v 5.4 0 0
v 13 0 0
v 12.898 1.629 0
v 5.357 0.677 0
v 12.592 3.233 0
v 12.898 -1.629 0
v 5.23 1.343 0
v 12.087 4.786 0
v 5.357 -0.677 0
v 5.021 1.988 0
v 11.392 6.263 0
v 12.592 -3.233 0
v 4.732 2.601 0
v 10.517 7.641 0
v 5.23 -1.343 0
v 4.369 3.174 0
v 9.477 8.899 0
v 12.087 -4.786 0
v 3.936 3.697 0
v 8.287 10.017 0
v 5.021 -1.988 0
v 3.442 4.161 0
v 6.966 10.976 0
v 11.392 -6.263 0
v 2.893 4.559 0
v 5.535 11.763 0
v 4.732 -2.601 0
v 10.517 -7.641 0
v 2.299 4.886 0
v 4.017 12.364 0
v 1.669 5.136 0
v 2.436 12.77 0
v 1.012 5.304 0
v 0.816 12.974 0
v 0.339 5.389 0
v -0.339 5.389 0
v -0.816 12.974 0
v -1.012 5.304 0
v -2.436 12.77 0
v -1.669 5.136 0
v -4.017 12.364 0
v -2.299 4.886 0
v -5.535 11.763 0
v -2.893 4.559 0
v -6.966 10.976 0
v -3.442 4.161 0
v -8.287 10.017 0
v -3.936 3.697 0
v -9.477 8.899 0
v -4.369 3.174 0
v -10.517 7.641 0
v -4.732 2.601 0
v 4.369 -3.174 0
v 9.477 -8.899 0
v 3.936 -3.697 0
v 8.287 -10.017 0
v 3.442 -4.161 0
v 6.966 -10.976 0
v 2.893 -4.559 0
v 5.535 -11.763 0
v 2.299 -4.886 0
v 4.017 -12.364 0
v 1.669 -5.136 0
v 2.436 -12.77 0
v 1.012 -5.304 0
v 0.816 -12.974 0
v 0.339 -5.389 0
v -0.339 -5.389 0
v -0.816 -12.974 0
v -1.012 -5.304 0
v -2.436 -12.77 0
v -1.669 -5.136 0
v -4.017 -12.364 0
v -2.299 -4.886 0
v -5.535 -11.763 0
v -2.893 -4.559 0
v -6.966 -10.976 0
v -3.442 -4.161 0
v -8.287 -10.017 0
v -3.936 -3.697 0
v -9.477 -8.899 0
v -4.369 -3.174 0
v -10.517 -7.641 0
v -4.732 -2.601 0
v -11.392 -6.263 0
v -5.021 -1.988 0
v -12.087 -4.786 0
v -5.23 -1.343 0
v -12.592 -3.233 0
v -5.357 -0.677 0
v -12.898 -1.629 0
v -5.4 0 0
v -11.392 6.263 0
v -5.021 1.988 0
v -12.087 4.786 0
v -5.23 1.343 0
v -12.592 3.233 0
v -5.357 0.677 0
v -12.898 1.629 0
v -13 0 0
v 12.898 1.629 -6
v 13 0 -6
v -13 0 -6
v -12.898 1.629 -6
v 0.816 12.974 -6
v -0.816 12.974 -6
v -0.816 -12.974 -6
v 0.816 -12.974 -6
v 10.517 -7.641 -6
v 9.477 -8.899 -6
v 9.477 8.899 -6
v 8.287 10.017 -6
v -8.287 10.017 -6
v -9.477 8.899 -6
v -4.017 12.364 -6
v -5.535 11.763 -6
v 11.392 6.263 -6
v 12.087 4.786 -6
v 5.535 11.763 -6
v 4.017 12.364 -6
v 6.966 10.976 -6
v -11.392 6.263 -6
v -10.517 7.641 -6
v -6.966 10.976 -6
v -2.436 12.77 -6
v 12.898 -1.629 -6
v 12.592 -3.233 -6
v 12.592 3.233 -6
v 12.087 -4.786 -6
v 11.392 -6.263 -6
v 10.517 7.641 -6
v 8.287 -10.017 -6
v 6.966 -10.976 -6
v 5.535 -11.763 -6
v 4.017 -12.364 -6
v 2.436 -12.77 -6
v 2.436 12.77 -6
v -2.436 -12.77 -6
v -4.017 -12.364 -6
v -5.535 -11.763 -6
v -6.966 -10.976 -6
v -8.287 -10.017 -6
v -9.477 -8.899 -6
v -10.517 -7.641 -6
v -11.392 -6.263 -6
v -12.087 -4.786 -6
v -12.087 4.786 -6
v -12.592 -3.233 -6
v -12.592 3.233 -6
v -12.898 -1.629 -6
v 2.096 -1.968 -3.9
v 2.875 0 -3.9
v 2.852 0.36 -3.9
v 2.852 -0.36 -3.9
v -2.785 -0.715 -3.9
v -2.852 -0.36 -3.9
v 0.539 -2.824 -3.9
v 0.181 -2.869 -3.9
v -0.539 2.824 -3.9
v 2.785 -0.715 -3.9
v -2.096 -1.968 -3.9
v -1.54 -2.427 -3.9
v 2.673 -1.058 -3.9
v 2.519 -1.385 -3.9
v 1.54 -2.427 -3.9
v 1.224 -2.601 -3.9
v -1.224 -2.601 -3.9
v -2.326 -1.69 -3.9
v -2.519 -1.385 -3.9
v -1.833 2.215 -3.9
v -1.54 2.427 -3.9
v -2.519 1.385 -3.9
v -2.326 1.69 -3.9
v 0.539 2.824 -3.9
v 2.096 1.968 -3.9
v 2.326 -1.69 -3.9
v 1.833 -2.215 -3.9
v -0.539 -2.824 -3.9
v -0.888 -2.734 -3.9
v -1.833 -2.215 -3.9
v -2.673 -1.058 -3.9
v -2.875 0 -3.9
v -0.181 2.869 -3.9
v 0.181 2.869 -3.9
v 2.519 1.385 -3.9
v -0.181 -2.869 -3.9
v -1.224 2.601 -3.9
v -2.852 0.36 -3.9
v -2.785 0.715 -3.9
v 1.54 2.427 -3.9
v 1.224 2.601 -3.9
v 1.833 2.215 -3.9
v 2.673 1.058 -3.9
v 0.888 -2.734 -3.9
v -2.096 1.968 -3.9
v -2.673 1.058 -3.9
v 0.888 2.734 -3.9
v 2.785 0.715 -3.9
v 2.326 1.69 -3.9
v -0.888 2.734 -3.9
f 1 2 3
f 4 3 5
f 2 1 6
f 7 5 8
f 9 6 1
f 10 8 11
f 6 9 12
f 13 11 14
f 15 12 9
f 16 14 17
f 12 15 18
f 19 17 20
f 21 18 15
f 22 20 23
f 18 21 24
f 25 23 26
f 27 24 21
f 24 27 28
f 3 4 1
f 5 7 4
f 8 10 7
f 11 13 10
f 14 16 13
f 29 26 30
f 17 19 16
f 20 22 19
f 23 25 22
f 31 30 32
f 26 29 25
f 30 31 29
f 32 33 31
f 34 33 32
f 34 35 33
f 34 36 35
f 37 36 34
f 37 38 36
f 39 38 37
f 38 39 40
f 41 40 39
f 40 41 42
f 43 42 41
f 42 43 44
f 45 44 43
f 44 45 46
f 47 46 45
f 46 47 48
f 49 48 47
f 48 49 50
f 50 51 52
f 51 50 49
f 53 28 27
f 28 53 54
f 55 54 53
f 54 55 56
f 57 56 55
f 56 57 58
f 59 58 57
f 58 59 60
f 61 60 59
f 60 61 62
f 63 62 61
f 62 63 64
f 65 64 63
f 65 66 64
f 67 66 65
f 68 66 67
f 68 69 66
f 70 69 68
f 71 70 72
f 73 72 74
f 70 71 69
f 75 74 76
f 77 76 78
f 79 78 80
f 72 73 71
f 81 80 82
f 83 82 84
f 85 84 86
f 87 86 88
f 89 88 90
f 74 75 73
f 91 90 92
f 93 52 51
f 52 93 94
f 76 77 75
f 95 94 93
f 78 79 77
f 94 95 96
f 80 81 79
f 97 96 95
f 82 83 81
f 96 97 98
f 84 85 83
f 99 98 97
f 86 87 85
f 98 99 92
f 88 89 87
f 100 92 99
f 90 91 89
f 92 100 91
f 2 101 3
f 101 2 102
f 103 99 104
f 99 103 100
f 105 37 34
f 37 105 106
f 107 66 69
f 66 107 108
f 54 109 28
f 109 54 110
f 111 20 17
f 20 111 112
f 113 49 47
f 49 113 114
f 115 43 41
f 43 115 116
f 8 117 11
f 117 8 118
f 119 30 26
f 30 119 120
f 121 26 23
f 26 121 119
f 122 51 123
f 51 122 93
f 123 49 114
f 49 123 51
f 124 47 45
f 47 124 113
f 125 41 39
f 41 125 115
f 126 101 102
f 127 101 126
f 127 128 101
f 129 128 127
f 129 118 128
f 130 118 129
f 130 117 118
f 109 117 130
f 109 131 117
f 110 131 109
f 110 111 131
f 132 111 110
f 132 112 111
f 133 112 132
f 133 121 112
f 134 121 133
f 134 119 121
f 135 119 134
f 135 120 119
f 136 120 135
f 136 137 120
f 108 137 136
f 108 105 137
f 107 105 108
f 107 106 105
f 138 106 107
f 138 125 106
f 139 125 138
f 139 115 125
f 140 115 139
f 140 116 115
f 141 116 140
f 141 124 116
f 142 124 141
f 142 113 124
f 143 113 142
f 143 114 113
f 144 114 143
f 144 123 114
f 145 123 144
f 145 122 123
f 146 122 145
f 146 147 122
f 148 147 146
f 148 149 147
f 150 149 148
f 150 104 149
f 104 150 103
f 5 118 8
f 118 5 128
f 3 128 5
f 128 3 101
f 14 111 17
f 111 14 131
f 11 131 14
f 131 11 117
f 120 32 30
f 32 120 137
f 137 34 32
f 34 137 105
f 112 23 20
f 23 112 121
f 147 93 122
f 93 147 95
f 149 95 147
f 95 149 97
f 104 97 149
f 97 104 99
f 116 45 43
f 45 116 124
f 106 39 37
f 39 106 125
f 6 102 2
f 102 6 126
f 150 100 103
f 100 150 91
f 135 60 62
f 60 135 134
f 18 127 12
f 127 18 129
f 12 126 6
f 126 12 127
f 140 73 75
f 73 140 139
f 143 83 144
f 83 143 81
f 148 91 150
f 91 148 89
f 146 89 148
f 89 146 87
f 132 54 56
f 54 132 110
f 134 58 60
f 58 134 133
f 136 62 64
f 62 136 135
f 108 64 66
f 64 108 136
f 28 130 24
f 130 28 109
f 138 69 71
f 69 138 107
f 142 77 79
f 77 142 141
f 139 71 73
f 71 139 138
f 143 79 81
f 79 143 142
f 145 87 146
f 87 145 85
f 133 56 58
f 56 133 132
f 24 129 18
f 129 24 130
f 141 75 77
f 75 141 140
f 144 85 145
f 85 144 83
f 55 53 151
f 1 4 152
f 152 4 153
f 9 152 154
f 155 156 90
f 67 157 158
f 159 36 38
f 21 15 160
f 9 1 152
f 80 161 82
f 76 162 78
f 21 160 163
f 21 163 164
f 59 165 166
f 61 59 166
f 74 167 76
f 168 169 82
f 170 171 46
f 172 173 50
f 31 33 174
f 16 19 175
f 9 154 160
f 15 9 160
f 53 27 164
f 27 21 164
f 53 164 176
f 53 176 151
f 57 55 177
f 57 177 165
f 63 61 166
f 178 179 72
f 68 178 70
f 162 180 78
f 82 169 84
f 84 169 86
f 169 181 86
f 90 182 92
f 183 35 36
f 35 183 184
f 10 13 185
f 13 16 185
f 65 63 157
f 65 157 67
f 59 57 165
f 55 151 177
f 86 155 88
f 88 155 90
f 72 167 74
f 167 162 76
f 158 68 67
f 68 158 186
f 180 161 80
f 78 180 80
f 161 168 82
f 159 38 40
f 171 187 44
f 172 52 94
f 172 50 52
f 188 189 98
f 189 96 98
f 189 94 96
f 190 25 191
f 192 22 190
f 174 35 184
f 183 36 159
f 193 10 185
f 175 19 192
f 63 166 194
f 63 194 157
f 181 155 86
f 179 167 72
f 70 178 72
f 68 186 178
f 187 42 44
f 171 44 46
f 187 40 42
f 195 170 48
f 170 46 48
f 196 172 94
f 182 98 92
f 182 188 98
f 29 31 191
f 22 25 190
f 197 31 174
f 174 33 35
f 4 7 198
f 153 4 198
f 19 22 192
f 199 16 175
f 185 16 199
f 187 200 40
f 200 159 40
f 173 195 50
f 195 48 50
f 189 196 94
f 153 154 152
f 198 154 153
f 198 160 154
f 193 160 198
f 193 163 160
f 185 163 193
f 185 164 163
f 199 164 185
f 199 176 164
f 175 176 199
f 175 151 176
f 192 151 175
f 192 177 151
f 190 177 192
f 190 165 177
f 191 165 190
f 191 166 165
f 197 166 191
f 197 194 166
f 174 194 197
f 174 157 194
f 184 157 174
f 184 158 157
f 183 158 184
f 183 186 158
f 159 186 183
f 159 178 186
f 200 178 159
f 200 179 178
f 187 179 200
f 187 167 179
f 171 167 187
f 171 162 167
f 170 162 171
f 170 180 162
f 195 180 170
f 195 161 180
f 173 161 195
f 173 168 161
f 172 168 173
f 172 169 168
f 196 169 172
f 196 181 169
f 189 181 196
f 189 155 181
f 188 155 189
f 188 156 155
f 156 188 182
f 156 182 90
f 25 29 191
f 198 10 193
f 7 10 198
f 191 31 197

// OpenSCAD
$fn = 50;


difference() {
	union() {
		translate(v = [0, 0, -3.0000000000]) {
			cylinder(h = 3, r = 7.0000000000);
		}
		translate(v = [0, 0, -6.0000000000]) {
			cylinder(h = 6, r = 13.0000000000);
		}
	}
	union() {
		translate(v = [0, 0, 0]) {
			rotate(a = [0, 0, 0]) {
				difference() {
					union() {
						#translate(v = [0, 0, -3.0000000000]) {
							cylinder(h = 3, r = 2.6000000000);
						}
						#translate(v = [0, 0, -3.9000000000]) {
							cylinder(h = 3.9000000000, r = 7.0000000000, r1 = 2.8750000000, r2 = 5.4000000000);
						}
						#translate(v = [0, 0, -3.0000000000]) {
							cylinder(h = 3, r = 2.8750000000);
						}
						#translate(v = [0, 0, -3.0000000000]) {
							cylinder(h = 3, r = 2.6000000000);
						}
					}
					union();
				}
			}
		}
	}
}
